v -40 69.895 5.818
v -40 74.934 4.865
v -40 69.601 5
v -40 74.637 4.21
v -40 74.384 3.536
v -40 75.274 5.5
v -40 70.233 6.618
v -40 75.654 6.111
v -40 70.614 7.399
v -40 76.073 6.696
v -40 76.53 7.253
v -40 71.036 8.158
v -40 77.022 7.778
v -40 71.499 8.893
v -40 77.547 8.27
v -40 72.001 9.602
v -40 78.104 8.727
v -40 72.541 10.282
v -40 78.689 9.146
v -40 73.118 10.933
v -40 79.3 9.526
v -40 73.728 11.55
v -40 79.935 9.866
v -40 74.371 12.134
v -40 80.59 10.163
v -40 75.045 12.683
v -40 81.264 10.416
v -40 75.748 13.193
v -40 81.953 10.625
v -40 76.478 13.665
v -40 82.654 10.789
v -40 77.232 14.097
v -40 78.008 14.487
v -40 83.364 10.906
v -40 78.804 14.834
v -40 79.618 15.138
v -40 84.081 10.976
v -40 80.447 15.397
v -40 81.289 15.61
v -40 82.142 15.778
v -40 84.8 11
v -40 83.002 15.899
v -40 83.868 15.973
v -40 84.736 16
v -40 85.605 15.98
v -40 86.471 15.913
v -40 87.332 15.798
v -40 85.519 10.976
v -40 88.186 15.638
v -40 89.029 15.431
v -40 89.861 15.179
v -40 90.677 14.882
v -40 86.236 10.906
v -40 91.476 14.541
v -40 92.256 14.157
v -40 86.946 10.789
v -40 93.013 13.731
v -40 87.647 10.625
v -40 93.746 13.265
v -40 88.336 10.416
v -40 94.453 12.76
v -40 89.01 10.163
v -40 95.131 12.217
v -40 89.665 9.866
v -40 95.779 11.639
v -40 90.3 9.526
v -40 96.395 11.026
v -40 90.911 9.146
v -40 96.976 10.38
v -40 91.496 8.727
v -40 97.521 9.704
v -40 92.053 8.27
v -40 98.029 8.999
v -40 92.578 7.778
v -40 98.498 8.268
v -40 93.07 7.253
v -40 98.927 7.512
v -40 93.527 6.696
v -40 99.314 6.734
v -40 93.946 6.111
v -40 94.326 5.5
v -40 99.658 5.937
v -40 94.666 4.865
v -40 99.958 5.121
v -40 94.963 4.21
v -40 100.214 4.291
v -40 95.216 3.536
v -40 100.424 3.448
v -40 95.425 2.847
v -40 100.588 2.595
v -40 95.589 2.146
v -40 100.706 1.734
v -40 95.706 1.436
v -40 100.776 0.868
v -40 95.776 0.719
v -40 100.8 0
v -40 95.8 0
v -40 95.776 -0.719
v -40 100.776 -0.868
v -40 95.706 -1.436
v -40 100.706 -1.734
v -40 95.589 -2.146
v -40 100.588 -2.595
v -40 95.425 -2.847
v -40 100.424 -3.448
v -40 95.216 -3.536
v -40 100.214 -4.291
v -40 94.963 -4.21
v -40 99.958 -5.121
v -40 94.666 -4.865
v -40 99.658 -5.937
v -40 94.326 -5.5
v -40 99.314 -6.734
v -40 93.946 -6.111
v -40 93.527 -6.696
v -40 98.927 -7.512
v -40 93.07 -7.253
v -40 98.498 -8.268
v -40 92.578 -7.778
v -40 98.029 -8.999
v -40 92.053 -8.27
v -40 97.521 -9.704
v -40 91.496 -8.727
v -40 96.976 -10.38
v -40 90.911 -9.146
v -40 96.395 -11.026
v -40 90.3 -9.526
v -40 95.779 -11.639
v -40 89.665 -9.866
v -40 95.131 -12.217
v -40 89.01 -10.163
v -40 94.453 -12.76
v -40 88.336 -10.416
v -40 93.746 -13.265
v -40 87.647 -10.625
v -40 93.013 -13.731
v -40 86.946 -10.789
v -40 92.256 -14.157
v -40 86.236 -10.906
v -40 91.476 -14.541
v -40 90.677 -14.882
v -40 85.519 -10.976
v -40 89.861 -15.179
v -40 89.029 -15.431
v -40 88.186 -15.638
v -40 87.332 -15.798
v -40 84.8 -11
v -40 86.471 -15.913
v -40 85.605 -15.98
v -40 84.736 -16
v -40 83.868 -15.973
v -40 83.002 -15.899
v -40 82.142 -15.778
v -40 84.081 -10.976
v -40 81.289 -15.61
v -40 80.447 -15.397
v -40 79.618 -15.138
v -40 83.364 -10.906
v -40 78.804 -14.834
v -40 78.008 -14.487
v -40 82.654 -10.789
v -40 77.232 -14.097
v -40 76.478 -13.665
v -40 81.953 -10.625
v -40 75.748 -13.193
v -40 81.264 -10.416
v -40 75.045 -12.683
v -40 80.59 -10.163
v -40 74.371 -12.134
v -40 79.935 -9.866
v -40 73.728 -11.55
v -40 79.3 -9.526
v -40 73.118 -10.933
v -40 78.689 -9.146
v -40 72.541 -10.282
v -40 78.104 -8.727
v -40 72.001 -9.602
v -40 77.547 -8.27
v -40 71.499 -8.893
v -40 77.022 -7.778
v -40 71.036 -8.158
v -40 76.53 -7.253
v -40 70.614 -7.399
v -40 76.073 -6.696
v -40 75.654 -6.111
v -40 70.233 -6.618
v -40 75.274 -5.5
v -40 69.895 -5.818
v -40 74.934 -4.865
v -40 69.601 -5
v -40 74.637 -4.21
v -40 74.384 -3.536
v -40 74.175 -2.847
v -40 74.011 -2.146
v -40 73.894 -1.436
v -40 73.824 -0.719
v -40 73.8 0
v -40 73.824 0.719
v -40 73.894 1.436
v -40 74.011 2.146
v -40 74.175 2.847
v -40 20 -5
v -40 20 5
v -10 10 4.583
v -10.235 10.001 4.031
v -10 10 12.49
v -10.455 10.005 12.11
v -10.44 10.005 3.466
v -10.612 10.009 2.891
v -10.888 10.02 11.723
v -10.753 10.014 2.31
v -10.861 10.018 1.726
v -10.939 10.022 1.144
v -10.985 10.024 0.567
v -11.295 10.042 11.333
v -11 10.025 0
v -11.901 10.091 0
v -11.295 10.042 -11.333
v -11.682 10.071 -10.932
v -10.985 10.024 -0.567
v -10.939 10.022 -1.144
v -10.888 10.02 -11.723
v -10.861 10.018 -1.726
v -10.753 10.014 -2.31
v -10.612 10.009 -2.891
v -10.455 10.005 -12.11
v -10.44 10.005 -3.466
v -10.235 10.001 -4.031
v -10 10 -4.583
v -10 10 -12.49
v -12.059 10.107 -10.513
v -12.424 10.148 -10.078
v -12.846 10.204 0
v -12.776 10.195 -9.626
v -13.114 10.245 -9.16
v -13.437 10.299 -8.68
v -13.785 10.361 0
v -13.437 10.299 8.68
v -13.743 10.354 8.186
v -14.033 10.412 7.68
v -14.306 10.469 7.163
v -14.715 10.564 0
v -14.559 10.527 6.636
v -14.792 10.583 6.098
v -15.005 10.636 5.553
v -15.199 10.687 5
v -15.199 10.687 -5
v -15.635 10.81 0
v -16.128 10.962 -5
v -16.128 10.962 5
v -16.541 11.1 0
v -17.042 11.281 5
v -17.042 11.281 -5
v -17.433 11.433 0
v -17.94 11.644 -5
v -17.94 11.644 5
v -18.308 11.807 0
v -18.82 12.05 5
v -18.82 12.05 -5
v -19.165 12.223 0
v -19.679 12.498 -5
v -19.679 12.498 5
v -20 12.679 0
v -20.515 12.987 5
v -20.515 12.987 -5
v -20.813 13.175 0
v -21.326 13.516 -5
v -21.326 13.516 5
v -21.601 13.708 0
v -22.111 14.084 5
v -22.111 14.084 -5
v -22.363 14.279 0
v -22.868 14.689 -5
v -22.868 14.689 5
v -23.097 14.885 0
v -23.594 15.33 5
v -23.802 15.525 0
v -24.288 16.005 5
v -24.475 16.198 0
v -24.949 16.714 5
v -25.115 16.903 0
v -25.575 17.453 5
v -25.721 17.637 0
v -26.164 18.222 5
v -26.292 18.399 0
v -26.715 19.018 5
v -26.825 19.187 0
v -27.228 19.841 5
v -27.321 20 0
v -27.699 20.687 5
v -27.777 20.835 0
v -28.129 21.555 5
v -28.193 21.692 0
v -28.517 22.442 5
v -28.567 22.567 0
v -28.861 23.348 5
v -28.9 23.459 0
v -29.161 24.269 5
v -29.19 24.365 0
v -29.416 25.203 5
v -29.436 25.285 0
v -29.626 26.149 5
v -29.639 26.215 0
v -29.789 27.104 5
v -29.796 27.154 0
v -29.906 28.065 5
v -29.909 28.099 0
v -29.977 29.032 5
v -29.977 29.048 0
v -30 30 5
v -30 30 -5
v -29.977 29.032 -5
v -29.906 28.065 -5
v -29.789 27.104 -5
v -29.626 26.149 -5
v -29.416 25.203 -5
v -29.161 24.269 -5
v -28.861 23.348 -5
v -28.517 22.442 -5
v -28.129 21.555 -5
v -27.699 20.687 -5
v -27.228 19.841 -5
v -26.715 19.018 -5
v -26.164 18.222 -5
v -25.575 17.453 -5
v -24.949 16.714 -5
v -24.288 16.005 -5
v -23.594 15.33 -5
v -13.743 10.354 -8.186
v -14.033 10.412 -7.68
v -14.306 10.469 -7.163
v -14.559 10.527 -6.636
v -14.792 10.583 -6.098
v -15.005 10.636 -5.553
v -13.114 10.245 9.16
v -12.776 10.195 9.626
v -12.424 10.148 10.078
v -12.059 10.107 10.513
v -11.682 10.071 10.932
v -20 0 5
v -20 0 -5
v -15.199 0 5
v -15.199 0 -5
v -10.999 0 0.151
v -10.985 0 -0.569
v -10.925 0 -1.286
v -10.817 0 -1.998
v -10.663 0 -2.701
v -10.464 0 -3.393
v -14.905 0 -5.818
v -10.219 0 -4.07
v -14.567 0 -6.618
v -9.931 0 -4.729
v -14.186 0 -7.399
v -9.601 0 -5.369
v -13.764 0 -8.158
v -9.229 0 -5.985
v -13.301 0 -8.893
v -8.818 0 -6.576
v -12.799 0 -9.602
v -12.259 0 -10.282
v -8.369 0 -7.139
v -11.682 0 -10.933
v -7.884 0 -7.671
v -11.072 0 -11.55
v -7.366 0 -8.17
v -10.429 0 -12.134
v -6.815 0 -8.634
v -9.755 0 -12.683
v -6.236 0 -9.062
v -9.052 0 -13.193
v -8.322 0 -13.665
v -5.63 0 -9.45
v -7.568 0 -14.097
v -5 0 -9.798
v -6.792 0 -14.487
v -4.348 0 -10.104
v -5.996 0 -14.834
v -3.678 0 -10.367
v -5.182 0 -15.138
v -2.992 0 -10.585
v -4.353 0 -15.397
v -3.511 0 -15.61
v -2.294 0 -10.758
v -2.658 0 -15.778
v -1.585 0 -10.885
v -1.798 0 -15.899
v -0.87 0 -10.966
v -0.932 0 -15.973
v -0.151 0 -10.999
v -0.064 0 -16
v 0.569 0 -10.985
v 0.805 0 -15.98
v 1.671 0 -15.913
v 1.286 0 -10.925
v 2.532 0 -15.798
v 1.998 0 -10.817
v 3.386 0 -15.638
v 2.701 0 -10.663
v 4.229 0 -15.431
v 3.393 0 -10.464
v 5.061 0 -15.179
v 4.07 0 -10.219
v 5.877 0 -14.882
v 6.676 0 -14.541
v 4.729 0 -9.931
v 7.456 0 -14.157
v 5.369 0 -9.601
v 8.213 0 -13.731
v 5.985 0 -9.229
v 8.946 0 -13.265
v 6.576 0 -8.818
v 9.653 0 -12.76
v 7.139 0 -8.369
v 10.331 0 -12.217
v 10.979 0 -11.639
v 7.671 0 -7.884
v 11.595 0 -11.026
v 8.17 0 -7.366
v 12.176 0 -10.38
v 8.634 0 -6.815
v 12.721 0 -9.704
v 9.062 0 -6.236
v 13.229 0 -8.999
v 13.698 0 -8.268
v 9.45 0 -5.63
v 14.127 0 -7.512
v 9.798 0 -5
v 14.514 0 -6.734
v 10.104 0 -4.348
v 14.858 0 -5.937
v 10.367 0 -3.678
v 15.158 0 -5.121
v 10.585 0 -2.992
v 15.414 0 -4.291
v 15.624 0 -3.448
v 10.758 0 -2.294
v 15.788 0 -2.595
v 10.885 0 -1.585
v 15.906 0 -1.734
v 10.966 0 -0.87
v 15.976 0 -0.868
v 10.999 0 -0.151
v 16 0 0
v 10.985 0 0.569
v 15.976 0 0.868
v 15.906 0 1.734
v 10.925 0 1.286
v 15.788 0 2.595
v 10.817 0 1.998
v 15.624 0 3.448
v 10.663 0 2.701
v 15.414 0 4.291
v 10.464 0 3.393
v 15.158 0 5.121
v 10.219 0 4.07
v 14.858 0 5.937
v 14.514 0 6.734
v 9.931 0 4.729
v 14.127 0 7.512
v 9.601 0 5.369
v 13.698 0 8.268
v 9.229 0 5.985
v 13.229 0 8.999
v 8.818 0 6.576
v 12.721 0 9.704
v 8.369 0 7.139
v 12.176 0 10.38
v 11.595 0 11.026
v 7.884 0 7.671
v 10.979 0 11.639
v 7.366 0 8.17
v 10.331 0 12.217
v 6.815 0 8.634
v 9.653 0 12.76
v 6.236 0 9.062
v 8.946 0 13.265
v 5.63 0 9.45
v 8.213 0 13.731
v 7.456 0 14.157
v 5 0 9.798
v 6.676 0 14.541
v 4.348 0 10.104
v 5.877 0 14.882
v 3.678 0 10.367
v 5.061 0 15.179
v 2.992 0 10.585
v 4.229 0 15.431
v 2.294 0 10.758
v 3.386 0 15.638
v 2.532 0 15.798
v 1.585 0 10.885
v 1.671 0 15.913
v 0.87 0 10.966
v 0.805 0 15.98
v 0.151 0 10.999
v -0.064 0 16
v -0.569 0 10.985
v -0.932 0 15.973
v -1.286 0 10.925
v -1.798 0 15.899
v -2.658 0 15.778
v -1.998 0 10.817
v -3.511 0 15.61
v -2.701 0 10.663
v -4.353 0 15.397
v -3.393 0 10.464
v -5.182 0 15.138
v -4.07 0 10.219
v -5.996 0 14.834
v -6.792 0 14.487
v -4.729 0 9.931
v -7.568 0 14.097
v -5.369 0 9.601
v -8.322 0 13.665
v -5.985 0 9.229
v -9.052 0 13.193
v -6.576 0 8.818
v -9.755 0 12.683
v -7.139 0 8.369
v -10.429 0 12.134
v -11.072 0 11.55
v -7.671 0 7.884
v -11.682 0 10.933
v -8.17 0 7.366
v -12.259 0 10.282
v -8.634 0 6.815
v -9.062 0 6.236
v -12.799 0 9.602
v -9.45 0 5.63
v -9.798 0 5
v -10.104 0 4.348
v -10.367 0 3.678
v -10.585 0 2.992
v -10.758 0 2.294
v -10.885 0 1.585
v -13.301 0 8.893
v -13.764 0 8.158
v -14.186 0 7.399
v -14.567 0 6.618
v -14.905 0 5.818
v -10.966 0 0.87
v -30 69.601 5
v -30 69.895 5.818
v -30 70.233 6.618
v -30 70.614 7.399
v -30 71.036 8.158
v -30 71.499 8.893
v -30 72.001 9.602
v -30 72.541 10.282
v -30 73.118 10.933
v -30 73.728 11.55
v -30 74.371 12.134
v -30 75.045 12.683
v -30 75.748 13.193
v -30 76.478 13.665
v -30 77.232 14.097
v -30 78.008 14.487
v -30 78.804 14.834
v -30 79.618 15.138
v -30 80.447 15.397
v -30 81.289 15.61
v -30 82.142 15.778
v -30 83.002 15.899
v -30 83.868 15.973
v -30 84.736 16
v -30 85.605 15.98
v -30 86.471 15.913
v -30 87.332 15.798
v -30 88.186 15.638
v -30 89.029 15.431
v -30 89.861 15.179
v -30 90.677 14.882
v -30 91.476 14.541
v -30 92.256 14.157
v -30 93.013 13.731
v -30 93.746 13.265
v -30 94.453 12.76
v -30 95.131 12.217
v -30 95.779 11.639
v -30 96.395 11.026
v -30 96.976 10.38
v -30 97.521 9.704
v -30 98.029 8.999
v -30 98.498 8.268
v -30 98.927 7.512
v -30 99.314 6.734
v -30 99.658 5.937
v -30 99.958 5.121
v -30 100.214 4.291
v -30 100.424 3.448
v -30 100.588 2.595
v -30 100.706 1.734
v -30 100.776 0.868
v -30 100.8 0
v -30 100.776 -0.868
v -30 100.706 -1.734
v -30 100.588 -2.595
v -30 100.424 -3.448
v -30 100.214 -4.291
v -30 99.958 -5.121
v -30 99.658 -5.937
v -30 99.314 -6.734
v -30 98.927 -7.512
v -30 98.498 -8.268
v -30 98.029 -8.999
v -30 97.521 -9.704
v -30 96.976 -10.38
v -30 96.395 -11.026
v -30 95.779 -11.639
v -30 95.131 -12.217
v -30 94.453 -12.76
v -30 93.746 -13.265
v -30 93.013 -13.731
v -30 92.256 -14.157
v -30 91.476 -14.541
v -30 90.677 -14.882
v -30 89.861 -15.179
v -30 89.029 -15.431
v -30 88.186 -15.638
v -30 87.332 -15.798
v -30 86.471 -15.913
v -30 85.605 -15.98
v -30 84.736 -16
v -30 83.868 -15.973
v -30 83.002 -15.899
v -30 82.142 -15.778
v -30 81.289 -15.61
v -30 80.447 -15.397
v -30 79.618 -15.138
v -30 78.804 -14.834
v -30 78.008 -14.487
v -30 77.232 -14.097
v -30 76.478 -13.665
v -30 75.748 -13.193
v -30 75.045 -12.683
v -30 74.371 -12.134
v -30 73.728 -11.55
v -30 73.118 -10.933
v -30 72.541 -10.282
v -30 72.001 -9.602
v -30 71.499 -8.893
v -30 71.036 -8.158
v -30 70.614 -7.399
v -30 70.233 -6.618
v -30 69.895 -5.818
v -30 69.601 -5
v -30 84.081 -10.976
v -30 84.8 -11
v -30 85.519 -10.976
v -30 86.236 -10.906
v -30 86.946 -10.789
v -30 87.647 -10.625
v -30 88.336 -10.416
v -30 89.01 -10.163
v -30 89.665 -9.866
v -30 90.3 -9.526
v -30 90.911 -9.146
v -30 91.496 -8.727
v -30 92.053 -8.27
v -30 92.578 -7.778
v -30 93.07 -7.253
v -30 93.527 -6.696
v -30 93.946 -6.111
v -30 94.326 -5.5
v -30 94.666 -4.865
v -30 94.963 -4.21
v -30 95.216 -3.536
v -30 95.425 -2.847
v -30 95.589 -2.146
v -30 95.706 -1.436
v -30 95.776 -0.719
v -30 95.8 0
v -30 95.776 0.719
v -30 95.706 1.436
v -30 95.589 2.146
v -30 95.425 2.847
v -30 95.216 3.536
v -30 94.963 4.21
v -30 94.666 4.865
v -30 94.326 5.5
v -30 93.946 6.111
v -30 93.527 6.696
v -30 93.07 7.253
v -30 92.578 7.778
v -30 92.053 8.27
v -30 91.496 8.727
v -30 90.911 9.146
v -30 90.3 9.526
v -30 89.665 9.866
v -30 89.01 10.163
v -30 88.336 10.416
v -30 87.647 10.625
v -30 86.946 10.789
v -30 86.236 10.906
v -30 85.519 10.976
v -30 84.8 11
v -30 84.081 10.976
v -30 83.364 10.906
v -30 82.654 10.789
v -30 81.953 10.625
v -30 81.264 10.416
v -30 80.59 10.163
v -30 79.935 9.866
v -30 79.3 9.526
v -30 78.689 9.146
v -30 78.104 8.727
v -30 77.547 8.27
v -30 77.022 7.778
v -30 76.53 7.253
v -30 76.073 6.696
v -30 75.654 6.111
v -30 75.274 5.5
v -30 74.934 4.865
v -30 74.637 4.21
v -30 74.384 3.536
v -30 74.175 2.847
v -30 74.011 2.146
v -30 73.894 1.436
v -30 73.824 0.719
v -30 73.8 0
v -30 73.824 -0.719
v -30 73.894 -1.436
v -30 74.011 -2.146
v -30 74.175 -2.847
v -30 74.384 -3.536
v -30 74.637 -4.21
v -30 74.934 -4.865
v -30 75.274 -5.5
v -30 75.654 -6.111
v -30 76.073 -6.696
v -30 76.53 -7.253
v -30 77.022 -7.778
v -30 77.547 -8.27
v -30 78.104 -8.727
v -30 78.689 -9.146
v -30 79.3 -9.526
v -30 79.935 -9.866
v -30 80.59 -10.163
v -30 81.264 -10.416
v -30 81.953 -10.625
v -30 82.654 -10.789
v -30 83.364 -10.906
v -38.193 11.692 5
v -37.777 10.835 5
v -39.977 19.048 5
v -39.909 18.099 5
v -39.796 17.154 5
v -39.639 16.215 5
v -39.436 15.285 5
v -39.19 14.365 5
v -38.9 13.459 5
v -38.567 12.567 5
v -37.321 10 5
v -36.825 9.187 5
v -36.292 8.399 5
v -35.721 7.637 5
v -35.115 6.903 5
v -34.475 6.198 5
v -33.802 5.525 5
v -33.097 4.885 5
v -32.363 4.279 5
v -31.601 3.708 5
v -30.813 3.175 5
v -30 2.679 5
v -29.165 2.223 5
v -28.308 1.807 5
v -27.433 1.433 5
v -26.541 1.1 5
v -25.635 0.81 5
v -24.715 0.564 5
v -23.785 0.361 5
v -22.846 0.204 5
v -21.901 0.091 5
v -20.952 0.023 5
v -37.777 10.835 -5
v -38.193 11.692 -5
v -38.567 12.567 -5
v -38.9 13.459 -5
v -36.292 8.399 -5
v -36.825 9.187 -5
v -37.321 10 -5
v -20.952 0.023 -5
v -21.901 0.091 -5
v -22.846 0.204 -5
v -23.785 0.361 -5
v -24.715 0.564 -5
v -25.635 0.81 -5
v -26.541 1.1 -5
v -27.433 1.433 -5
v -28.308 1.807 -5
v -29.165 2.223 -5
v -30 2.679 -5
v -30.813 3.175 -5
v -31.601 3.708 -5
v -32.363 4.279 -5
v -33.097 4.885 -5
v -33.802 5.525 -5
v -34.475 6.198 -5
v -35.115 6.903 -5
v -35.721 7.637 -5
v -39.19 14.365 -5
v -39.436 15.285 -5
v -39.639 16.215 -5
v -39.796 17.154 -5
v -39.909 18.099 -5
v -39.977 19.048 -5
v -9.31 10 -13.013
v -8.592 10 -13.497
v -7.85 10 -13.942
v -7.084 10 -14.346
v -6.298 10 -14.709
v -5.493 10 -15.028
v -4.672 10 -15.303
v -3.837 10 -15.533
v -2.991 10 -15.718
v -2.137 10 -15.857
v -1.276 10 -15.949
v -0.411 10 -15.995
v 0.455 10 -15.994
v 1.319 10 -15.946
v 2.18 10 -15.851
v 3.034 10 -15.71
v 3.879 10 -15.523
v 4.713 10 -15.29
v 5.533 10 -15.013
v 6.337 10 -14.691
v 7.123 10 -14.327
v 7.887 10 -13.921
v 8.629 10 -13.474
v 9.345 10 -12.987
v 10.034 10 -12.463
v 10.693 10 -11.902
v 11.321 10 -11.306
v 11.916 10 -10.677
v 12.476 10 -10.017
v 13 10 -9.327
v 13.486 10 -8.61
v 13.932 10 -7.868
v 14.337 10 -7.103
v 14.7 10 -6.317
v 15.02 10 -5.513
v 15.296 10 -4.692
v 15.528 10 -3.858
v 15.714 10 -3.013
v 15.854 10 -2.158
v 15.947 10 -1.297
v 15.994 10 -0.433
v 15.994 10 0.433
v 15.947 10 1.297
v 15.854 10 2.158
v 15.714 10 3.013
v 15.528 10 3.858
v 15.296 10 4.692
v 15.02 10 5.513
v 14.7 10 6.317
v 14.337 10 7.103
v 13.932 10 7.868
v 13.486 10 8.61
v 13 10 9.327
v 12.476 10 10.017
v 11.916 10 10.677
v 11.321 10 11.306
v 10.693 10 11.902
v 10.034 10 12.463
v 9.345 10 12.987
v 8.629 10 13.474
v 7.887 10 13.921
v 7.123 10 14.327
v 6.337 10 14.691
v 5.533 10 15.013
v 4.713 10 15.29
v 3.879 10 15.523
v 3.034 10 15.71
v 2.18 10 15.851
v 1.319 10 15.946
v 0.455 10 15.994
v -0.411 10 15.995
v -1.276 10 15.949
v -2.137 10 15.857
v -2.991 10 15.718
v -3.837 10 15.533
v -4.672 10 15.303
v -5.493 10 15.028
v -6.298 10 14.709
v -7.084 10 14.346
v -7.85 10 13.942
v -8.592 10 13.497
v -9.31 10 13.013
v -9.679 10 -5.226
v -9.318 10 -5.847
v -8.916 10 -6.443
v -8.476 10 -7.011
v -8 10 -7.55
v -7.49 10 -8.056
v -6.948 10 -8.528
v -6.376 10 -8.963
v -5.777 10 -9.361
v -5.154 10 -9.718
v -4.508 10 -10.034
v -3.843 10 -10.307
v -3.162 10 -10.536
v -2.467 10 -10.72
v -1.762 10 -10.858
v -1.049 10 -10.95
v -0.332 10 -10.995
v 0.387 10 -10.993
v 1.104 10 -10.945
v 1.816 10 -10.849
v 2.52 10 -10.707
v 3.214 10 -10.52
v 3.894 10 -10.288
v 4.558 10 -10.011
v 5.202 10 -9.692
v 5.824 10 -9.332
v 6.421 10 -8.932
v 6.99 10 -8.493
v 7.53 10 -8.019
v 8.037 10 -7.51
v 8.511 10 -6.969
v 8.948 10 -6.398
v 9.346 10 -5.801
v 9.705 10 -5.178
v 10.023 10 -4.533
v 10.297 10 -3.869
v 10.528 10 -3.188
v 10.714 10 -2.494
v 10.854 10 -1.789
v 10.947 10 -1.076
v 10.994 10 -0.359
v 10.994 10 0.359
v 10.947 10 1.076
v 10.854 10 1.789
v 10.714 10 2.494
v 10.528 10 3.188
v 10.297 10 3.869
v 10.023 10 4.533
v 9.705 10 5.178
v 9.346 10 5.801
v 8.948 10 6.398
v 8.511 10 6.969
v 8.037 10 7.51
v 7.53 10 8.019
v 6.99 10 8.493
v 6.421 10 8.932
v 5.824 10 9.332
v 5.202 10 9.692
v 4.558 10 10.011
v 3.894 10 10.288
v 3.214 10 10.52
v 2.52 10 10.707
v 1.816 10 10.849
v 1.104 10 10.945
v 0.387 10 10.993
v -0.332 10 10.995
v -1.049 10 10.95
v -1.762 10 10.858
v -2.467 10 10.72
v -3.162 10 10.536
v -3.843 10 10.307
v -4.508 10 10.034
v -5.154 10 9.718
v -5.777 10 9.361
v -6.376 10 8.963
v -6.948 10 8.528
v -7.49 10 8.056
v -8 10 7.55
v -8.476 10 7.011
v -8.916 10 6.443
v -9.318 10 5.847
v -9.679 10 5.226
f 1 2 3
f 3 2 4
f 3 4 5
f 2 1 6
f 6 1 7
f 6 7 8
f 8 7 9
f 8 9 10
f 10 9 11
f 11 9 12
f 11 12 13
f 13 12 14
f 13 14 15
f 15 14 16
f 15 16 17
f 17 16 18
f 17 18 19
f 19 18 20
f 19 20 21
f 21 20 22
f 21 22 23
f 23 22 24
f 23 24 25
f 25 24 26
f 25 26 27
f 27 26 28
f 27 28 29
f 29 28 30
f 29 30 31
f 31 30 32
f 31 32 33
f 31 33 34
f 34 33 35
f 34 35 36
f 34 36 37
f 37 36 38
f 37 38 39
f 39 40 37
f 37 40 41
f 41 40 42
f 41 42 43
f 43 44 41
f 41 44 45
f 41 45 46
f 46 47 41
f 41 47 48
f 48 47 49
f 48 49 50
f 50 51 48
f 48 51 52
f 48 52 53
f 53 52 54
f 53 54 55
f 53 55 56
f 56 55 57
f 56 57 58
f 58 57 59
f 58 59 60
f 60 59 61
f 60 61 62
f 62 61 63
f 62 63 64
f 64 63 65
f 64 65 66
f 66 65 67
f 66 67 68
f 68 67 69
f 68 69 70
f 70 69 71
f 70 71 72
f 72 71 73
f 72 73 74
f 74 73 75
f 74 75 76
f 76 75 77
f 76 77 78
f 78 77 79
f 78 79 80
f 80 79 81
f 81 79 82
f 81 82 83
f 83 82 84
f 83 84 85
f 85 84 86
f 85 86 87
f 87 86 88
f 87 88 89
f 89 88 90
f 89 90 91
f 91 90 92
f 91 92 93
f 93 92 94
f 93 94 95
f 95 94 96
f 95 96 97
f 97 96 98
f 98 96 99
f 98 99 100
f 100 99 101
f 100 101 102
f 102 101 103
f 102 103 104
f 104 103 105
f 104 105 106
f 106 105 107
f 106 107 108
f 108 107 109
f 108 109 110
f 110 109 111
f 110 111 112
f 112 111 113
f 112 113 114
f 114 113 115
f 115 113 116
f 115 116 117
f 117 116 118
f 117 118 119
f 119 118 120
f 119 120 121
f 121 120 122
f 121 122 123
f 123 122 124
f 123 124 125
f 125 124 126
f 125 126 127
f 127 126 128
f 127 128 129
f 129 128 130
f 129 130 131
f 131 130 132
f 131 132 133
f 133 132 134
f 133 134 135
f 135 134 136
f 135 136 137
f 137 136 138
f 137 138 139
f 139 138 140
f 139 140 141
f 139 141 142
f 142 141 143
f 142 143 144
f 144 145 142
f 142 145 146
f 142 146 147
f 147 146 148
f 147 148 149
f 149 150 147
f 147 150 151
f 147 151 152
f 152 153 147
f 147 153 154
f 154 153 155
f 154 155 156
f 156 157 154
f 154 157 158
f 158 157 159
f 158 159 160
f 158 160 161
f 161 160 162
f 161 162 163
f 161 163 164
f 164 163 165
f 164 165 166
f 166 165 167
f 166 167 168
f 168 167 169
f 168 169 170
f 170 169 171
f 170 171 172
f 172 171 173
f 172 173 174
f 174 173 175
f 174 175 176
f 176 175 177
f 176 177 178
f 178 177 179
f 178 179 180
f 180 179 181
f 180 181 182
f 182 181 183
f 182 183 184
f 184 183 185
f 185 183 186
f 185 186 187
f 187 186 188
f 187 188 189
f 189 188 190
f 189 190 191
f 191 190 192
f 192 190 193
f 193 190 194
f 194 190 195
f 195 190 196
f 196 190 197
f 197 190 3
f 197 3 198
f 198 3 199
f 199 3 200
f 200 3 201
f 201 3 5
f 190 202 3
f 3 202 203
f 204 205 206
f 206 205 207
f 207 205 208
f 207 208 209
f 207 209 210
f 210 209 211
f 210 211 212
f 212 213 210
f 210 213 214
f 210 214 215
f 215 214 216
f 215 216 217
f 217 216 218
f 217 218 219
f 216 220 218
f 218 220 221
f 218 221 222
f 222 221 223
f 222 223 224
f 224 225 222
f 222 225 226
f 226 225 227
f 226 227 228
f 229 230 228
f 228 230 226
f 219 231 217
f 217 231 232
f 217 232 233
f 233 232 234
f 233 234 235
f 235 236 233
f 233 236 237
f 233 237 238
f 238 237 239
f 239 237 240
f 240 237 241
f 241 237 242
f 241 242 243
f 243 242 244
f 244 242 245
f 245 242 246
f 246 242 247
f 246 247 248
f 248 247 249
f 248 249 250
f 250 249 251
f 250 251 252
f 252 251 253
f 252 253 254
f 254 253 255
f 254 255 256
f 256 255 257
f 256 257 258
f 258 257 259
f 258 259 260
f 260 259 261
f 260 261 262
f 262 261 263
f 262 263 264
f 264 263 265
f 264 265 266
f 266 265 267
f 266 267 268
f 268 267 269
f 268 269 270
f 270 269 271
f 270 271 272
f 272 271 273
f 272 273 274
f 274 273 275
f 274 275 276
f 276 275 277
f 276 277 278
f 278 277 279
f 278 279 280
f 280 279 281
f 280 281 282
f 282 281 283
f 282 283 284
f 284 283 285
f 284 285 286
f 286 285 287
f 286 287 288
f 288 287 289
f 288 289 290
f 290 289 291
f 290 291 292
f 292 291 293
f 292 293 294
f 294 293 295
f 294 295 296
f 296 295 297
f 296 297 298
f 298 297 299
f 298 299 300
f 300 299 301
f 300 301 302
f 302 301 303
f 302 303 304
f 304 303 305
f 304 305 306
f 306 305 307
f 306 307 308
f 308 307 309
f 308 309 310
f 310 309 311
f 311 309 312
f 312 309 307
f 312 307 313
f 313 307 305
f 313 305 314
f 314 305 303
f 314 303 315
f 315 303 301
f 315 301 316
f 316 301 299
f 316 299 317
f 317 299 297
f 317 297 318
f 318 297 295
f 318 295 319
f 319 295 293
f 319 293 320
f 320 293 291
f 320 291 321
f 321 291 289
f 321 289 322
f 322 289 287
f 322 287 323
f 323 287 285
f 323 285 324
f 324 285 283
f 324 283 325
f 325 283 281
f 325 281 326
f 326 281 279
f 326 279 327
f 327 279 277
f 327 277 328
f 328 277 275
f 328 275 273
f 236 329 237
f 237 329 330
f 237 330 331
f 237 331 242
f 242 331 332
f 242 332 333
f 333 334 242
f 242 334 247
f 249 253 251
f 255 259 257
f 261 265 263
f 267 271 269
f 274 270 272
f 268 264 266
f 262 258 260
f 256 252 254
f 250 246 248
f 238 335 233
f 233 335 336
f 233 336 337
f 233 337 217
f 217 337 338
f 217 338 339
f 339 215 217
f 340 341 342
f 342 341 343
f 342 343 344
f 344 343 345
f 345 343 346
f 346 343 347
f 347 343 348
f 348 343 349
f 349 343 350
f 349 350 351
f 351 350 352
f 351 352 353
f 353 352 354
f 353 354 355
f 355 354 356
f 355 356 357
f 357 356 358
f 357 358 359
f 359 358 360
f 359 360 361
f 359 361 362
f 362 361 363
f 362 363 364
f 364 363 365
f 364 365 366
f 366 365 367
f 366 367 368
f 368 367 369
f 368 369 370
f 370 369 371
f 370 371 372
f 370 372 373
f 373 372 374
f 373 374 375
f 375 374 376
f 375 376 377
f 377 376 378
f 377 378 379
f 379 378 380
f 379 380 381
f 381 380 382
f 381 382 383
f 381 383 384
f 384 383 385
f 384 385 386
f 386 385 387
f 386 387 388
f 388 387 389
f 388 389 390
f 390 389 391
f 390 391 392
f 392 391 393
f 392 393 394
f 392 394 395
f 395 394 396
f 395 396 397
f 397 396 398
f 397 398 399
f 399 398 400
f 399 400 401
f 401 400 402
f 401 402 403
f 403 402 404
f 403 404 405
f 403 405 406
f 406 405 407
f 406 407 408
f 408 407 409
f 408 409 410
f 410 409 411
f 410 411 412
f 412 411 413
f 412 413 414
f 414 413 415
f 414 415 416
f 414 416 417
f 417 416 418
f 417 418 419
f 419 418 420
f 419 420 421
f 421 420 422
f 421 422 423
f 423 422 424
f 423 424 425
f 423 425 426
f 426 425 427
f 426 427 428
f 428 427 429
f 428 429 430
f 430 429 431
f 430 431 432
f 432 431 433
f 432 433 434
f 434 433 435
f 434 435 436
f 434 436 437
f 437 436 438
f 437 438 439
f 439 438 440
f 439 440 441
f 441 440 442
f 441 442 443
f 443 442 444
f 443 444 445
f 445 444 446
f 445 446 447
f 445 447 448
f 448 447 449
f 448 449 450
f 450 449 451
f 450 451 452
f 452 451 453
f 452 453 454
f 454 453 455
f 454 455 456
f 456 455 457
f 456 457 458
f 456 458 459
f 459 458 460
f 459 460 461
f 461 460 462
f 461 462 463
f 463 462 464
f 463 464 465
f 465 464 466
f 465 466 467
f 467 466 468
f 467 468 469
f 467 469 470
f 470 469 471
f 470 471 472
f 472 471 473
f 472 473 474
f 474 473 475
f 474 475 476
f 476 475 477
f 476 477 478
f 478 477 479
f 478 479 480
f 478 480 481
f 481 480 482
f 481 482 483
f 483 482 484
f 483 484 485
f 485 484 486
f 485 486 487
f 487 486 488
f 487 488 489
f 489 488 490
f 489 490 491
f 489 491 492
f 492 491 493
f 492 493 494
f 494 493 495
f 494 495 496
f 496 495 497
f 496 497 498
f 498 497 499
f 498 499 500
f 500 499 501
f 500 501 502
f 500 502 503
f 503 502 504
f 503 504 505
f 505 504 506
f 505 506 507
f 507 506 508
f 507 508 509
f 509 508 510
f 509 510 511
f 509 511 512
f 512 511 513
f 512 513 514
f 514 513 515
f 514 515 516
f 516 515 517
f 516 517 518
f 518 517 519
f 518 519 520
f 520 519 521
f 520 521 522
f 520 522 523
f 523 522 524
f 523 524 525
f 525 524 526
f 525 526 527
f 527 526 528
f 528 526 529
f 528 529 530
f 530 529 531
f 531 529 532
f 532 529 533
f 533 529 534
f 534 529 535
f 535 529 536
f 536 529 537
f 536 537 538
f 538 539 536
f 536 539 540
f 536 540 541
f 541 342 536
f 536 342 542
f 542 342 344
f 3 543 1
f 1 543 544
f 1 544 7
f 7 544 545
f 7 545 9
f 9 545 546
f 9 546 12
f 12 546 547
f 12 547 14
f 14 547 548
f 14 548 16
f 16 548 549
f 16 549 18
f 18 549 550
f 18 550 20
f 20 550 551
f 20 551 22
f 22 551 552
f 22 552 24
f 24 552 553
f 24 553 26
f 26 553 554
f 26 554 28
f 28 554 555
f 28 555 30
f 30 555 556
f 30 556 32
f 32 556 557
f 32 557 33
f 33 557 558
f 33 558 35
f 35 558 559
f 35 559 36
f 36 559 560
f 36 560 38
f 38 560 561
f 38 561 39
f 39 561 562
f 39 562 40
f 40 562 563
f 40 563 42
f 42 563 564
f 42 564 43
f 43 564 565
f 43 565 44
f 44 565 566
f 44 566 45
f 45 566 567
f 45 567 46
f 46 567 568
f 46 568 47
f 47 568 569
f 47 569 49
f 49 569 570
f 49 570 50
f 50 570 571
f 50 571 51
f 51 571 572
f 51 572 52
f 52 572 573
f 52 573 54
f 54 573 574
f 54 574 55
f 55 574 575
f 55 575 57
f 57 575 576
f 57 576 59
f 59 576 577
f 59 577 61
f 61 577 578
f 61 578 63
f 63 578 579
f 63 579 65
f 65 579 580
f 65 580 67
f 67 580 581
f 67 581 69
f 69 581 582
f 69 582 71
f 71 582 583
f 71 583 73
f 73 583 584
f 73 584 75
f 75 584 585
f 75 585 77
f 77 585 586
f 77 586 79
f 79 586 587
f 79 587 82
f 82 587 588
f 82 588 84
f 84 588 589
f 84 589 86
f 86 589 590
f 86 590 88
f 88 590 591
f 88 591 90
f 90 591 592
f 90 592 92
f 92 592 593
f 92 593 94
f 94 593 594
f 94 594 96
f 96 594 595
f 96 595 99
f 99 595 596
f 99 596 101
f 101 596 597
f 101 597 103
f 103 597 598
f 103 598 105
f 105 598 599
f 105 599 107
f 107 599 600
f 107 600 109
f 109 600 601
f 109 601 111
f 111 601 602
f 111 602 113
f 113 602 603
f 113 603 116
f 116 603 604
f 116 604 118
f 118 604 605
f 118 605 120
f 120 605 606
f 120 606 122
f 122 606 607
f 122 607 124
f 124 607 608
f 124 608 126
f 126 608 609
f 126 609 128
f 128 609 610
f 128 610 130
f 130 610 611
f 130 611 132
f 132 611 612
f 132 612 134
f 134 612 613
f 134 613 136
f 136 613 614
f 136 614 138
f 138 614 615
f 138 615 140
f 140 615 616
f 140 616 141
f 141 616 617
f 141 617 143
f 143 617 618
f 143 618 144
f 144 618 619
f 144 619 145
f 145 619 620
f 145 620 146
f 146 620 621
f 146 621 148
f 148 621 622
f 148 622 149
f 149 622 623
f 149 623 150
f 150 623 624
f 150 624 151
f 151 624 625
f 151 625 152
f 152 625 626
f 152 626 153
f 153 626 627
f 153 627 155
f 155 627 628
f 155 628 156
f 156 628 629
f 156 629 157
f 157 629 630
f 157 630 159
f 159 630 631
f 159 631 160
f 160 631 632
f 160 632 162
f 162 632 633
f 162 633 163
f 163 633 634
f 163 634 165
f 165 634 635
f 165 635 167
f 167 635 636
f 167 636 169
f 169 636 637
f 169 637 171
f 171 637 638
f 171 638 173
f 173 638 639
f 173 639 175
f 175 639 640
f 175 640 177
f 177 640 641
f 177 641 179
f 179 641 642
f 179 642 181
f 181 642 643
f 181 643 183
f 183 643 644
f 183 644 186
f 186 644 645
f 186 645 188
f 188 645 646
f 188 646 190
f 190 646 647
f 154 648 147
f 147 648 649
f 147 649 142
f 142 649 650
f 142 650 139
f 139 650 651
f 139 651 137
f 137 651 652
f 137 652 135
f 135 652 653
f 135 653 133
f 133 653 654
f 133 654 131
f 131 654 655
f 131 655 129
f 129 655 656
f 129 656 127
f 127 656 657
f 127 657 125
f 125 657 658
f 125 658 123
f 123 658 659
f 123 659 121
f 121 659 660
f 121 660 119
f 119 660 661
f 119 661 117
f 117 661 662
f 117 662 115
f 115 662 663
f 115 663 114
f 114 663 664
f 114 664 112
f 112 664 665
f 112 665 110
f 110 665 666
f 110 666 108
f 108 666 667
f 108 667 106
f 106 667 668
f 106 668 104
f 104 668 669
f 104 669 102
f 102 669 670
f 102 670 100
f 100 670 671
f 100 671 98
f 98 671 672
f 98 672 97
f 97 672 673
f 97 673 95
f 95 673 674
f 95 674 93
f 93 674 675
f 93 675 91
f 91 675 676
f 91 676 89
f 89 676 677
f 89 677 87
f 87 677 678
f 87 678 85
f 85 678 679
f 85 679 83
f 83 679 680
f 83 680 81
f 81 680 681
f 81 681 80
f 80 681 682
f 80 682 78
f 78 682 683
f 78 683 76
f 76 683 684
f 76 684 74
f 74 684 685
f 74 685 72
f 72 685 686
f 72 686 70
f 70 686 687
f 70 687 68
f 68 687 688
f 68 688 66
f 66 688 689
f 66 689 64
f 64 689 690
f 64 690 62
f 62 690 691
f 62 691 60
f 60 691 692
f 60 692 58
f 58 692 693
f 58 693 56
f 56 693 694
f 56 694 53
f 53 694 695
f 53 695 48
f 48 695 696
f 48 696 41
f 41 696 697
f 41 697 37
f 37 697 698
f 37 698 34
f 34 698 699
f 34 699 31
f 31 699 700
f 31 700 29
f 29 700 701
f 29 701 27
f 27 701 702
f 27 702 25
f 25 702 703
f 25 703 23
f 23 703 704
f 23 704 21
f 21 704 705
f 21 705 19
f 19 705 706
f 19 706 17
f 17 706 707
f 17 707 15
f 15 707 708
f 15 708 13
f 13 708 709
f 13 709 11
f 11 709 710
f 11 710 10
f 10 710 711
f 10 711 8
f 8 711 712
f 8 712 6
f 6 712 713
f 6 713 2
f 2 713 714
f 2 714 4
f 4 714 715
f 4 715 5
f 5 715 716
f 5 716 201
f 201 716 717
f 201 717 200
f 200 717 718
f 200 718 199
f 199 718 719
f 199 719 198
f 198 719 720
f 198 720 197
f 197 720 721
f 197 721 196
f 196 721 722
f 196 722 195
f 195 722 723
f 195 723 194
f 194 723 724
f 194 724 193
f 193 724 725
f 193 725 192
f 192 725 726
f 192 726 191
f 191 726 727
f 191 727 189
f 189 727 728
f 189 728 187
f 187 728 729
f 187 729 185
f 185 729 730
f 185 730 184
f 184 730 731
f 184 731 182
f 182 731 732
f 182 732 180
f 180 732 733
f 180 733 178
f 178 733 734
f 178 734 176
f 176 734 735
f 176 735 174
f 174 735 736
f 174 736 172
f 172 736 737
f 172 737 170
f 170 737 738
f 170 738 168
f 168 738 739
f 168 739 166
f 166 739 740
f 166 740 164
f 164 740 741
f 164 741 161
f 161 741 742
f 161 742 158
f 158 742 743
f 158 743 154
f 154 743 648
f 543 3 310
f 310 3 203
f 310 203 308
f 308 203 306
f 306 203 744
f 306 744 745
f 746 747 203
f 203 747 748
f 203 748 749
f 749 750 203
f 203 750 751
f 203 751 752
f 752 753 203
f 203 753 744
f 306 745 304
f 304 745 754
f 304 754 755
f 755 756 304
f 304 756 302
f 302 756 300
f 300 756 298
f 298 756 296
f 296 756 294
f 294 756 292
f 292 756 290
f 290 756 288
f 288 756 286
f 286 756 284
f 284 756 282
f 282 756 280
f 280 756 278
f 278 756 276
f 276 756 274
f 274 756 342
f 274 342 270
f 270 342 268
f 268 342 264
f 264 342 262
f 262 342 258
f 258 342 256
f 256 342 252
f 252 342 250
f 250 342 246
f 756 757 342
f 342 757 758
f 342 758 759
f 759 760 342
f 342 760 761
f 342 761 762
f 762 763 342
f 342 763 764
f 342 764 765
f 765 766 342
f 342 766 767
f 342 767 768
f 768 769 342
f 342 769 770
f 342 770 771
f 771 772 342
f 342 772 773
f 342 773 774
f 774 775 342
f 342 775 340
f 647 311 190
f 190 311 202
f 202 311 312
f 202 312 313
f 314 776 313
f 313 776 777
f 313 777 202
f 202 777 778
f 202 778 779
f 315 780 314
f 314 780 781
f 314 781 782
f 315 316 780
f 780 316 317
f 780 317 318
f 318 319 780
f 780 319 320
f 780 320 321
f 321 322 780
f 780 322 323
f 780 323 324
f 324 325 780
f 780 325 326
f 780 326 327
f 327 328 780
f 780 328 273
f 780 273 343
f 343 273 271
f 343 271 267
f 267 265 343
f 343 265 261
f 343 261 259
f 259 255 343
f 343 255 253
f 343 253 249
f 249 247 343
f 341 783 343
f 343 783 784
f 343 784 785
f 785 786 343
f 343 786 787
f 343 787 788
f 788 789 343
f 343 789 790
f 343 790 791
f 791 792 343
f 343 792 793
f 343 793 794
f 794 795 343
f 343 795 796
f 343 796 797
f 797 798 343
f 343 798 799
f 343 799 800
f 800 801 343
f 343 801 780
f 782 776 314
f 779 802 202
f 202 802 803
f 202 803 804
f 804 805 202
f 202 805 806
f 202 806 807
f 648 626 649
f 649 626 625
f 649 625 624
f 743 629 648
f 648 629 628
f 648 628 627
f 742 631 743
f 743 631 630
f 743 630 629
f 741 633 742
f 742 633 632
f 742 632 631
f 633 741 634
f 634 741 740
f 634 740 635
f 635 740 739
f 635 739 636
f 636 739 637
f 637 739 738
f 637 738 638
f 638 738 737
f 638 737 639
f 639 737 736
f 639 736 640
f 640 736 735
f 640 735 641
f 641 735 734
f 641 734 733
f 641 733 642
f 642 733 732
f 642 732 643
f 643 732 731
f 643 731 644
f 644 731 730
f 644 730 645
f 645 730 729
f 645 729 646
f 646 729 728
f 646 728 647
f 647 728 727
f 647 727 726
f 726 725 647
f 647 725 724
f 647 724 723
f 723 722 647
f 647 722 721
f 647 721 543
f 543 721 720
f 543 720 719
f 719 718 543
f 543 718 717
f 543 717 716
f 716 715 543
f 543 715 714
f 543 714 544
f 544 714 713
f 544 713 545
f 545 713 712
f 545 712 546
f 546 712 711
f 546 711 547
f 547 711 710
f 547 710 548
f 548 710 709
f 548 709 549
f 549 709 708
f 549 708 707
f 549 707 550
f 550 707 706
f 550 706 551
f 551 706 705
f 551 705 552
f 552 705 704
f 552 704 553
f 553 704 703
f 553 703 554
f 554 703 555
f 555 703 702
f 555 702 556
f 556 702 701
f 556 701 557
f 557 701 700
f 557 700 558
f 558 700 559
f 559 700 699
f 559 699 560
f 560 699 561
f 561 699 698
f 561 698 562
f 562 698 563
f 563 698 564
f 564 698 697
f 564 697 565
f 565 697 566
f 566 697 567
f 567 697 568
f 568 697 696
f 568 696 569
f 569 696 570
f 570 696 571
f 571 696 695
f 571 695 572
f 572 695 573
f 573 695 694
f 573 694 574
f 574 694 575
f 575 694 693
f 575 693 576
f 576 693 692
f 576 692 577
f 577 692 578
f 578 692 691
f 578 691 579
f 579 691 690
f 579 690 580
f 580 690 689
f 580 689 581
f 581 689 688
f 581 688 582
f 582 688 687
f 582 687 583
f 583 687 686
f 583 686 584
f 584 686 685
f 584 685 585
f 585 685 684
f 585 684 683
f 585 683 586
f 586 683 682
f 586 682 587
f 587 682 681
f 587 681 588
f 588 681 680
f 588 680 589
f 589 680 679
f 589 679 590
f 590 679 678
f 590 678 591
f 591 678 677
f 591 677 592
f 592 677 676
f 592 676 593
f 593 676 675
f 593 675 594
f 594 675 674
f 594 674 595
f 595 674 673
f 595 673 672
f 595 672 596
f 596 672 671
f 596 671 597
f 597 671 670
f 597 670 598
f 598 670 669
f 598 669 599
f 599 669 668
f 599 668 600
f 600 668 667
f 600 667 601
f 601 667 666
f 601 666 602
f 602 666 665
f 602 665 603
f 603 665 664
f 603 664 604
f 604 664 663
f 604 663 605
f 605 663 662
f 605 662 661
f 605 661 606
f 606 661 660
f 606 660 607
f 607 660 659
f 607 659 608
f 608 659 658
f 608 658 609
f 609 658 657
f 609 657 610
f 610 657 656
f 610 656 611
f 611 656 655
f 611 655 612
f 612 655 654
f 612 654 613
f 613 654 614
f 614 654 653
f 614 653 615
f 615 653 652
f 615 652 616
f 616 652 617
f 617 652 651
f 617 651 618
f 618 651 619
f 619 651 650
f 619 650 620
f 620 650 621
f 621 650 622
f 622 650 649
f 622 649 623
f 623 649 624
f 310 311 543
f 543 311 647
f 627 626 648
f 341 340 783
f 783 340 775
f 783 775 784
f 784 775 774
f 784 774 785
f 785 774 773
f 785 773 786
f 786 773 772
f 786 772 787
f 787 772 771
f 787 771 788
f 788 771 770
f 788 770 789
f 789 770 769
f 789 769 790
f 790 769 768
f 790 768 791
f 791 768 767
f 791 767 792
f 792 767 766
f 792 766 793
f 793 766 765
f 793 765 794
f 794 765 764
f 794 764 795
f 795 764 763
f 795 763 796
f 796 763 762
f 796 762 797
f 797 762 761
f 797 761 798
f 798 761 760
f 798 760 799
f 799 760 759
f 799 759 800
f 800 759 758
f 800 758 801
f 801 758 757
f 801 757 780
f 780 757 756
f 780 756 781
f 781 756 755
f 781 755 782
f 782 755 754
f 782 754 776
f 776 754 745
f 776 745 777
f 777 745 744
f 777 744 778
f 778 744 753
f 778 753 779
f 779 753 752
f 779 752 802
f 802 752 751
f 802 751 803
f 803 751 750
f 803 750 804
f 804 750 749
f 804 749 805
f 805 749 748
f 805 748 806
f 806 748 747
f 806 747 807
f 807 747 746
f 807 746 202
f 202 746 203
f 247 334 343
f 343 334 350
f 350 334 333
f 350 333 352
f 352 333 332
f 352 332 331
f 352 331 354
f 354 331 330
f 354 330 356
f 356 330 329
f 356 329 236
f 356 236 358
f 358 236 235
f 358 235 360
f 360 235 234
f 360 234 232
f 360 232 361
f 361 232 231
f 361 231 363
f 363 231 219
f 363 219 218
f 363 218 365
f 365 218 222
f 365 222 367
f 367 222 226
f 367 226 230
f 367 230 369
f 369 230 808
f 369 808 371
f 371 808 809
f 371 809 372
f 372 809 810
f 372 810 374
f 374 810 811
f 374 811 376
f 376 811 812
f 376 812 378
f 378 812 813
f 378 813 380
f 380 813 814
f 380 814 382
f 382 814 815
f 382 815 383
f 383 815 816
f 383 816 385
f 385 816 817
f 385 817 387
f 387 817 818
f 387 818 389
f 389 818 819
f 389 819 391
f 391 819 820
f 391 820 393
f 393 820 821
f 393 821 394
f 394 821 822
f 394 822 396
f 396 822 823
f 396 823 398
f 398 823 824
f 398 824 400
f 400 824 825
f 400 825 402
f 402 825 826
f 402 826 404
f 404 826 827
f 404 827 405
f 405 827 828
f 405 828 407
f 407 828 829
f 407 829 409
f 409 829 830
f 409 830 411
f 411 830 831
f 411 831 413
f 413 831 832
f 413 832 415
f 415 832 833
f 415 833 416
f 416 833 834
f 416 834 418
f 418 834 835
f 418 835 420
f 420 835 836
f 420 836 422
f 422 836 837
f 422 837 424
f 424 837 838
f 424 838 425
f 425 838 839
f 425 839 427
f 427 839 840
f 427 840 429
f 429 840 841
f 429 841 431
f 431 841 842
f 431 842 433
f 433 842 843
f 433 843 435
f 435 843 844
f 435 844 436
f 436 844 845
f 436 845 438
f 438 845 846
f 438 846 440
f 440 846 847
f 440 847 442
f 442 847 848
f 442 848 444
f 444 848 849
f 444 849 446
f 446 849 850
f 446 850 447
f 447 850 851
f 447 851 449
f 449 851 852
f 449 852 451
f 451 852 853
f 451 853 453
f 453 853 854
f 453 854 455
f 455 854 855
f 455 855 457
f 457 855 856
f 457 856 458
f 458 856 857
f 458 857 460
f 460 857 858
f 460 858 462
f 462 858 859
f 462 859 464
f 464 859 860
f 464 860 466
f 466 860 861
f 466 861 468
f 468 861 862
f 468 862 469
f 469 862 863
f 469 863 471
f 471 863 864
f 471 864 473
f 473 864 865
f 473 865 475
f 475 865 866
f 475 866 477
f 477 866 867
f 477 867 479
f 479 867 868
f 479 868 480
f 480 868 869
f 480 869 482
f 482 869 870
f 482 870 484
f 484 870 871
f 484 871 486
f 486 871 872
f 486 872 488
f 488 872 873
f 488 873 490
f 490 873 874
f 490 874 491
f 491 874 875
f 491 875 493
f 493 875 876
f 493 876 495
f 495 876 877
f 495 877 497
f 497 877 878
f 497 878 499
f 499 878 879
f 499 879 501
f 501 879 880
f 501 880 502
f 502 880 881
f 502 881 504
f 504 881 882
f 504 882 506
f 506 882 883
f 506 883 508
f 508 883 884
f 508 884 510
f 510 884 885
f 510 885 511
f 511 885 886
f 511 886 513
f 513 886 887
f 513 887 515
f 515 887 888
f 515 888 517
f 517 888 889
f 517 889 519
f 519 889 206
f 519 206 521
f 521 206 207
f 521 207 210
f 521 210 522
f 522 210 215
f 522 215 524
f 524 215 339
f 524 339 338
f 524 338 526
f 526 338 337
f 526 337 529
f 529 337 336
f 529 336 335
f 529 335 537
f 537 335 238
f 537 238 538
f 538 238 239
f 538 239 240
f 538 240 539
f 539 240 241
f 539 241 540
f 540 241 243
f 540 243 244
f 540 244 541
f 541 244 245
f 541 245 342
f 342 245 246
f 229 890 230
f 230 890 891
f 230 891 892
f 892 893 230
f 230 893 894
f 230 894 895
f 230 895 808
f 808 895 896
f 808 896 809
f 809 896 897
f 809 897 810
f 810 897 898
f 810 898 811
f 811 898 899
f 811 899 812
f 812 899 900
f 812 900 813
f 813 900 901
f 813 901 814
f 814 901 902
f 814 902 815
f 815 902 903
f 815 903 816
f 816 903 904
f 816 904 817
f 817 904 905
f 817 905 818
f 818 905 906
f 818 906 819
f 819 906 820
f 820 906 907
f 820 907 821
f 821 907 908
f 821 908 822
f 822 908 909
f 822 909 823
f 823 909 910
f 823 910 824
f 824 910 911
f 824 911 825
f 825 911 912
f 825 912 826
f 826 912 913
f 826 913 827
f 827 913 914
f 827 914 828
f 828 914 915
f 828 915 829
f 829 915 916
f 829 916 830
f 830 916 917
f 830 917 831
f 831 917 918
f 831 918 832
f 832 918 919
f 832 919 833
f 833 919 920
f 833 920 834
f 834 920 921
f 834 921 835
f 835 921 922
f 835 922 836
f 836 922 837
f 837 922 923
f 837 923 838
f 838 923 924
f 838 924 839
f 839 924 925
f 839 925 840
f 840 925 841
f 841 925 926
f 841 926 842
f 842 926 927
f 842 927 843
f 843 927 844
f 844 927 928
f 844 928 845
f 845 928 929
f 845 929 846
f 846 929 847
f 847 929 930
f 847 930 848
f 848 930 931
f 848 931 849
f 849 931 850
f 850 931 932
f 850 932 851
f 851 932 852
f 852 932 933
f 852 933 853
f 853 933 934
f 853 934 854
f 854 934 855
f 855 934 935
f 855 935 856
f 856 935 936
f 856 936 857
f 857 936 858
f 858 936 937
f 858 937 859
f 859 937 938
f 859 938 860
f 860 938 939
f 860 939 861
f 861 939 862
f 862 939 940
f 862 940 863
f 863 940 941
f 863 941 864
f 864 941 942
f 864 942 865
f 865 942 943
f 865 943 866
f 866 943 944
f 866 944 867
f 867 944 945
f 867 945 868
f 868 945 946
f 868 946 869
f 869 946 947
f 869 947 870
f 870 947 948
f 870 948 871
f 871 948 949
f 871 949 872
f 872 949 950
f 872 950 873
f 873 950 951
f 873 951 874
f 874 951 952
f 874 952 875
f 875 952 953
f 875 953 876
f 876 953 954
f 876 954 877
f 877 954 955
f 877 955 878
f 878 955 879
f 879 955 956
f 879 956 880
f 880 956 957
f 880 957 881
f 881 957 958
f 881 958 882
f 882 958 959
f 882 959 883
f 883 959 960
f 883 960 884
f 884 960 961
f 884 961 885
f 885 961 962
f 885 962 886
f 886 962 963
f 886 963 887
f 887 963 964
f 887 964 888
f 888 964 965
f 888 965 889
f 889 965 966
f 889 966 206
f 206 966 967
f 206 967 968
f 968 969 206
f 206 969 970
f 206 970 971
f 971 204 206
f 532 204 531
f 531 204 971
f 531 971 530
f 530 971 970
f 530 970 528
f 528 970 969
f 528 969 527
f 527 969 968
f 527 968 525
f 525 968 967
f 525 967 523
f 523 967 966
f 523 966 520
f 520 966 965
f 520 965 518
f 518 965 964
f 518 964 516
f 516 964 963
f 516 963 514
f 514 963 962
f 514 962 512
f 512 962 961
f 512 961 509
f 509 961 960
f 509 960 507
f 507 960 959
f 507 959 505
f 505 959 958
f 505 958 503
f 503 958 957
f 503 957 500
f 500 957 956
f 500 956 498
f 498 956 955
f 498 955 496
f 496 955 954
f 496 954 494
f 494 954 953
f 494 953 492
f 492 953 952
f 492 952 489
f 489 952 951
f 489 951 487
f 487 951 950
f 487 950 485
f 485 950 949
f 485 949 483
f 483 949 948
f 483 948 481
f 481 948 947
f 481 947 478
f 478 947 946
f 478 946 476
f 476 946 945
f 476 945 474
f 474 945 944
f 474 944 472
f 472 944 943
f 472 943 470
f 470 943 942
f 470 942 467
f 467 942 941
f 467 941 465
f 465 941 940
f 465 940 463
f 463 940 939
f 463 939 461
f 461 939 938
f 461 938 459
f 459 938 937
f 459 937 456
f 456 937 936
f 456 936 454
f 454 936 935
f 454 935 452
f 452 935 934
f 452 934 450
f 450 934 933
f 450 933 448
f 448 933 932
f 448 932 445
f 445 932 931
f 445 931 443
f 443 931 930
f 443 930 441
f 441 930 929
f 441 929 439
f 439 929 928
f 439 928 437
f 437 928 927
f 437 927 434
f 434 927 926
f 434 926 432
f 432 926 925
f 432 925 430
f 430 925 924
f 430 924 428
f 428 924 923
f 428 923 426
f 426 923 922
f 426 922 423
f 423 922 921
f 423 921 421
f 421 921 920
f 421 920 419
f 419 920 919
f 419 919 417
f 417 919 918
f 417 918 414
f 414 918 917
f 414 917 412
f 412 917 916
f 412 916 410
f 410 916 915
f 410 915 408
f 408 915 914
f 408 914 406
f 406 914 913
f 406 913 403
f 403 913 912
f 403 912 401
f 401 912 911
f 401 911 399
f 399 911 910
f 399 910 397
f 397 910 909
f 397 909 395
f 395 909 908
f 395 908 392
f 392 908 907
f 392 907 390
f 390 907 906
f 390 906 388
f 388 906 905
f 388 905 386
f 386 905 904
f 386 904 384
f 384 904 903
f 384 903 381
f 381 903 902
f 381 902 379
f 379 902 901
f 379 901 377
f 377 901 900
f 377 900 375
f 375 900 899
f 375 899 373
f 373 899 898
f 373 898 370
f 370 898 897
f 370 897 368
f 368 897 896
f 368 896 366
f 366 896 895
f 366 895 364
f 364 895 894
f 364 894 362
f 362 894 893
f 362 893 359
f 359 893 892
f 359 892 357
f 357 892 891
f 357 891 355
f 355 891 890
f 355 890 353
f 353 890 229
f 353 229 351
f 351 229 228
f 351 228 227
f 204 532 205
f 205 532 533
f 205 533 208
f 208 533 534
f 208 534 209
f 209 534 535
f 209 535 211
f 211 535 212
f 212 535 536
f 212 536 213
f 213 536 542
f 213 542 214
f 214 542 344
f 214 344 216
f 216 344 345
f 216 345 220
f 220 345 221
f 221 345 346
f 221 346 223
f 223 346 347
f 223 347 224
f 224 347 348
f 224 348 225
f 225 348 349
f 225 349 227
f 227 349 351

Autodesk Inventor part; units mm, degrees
ref_plane "YZ Plane" through (0, 0, 0) normal (1, 0, 0) x (0, 1, 0)
ref_plane "XZ Plane" through (0, 0, 0) normal (0, 1, 0) x (-1, 0, 0)
ref_plane "XY Plane" through (0, 0, 0) normal (0, 0, 1) x (1, 0, 0)
sketch "Szkic2" plane through (0, 0, 0) normal (0, 1, 0) x (-1, 0, 0)
  circle A0 centre (0, 0) radius 11
  circle A1 centre (0, 0) radius 16
  dimension "d0" = 22
  dimension "d1" = 5
extrude "Wyciągnięcie proste1" add sketch "Szkic2" along normal blind 10
sketch "Szkic4" plane through (0, 0, 0) normal (0, 0, 1) x (1, 0, 0)
  line L0 (0, 0) -> (-30, 0)
  line L1 (-30, 0) -> (-30, 10)
  line L2 (-30, 10) -> (0, 10)
  line L3 (0, 10) -> (0, 0)
  line L4 (-30, 0) -> (-40, 0)
  line L5 (-40, 0) -> (-40, 84.8)
  line L6 (-40, 84.8) -> (-30, 84.8)
  line L7 (-30, 84.8) -> (-30, 0)
  dimension "d7" = 84.8
  dimension "d8" = 30
  dimension "d9" = 10
  dimension "d10" = 10
extrude "Wyciągnięcie proste2" add sketch "Szkic4" along normal mid plane 10
fillet "Zaokrąglenie1" radius 20 2 edges at (-40, 0, 0) (-30, 10, 0)
sketch "Szkic7" plane through (-30, 84.8, 5) normal (1, 0, 0) x (0, 0, -1)
  line L0 (10, 0) -> (0, 0) projected
  circle A0 centre (5, 0) radius 11
  circle A1 centre (5, 0) radius 16
  point P0 (5, -84.8)
  dimension "d14" = 22
  dimension "d15" = 32
extrude "Wyciągnięcie proste3" add sketch "Szkic7" against normal blind 10
sketch "Szkic8" plane through (0, 10, 0) normal (0, 1, 0) x (1, 0, 0)
  circle A0 centre (0, 0) radius 11
extrude "Wyciągnięcie proste4" cut sketch "Szkic8" against normal blind 10
sketch "Szkic9" plane through (0, 10, 0) normal (0, -1, 0) x (1, 0, 0)
  circle A0 centre (0, 0) radius 11
extrude "Wyciągnięcie proste5" cut sketch "Szkic9" against normal blind 10
sketch "Szkic10" plane through (-30, 30, 5) normal (1, 0, 0) x (0, 0, -1)
  line L0 (10, 54.8) -> (0, 54.8) projected
  circle A0 centre (5, 54.8) radius 11
  point P0 (5, -30)
extrude "Wyciągnięcie proste6" cut sketch "Szkic10" against normal blind 10
properties part number "Gora-gora-ramie"
